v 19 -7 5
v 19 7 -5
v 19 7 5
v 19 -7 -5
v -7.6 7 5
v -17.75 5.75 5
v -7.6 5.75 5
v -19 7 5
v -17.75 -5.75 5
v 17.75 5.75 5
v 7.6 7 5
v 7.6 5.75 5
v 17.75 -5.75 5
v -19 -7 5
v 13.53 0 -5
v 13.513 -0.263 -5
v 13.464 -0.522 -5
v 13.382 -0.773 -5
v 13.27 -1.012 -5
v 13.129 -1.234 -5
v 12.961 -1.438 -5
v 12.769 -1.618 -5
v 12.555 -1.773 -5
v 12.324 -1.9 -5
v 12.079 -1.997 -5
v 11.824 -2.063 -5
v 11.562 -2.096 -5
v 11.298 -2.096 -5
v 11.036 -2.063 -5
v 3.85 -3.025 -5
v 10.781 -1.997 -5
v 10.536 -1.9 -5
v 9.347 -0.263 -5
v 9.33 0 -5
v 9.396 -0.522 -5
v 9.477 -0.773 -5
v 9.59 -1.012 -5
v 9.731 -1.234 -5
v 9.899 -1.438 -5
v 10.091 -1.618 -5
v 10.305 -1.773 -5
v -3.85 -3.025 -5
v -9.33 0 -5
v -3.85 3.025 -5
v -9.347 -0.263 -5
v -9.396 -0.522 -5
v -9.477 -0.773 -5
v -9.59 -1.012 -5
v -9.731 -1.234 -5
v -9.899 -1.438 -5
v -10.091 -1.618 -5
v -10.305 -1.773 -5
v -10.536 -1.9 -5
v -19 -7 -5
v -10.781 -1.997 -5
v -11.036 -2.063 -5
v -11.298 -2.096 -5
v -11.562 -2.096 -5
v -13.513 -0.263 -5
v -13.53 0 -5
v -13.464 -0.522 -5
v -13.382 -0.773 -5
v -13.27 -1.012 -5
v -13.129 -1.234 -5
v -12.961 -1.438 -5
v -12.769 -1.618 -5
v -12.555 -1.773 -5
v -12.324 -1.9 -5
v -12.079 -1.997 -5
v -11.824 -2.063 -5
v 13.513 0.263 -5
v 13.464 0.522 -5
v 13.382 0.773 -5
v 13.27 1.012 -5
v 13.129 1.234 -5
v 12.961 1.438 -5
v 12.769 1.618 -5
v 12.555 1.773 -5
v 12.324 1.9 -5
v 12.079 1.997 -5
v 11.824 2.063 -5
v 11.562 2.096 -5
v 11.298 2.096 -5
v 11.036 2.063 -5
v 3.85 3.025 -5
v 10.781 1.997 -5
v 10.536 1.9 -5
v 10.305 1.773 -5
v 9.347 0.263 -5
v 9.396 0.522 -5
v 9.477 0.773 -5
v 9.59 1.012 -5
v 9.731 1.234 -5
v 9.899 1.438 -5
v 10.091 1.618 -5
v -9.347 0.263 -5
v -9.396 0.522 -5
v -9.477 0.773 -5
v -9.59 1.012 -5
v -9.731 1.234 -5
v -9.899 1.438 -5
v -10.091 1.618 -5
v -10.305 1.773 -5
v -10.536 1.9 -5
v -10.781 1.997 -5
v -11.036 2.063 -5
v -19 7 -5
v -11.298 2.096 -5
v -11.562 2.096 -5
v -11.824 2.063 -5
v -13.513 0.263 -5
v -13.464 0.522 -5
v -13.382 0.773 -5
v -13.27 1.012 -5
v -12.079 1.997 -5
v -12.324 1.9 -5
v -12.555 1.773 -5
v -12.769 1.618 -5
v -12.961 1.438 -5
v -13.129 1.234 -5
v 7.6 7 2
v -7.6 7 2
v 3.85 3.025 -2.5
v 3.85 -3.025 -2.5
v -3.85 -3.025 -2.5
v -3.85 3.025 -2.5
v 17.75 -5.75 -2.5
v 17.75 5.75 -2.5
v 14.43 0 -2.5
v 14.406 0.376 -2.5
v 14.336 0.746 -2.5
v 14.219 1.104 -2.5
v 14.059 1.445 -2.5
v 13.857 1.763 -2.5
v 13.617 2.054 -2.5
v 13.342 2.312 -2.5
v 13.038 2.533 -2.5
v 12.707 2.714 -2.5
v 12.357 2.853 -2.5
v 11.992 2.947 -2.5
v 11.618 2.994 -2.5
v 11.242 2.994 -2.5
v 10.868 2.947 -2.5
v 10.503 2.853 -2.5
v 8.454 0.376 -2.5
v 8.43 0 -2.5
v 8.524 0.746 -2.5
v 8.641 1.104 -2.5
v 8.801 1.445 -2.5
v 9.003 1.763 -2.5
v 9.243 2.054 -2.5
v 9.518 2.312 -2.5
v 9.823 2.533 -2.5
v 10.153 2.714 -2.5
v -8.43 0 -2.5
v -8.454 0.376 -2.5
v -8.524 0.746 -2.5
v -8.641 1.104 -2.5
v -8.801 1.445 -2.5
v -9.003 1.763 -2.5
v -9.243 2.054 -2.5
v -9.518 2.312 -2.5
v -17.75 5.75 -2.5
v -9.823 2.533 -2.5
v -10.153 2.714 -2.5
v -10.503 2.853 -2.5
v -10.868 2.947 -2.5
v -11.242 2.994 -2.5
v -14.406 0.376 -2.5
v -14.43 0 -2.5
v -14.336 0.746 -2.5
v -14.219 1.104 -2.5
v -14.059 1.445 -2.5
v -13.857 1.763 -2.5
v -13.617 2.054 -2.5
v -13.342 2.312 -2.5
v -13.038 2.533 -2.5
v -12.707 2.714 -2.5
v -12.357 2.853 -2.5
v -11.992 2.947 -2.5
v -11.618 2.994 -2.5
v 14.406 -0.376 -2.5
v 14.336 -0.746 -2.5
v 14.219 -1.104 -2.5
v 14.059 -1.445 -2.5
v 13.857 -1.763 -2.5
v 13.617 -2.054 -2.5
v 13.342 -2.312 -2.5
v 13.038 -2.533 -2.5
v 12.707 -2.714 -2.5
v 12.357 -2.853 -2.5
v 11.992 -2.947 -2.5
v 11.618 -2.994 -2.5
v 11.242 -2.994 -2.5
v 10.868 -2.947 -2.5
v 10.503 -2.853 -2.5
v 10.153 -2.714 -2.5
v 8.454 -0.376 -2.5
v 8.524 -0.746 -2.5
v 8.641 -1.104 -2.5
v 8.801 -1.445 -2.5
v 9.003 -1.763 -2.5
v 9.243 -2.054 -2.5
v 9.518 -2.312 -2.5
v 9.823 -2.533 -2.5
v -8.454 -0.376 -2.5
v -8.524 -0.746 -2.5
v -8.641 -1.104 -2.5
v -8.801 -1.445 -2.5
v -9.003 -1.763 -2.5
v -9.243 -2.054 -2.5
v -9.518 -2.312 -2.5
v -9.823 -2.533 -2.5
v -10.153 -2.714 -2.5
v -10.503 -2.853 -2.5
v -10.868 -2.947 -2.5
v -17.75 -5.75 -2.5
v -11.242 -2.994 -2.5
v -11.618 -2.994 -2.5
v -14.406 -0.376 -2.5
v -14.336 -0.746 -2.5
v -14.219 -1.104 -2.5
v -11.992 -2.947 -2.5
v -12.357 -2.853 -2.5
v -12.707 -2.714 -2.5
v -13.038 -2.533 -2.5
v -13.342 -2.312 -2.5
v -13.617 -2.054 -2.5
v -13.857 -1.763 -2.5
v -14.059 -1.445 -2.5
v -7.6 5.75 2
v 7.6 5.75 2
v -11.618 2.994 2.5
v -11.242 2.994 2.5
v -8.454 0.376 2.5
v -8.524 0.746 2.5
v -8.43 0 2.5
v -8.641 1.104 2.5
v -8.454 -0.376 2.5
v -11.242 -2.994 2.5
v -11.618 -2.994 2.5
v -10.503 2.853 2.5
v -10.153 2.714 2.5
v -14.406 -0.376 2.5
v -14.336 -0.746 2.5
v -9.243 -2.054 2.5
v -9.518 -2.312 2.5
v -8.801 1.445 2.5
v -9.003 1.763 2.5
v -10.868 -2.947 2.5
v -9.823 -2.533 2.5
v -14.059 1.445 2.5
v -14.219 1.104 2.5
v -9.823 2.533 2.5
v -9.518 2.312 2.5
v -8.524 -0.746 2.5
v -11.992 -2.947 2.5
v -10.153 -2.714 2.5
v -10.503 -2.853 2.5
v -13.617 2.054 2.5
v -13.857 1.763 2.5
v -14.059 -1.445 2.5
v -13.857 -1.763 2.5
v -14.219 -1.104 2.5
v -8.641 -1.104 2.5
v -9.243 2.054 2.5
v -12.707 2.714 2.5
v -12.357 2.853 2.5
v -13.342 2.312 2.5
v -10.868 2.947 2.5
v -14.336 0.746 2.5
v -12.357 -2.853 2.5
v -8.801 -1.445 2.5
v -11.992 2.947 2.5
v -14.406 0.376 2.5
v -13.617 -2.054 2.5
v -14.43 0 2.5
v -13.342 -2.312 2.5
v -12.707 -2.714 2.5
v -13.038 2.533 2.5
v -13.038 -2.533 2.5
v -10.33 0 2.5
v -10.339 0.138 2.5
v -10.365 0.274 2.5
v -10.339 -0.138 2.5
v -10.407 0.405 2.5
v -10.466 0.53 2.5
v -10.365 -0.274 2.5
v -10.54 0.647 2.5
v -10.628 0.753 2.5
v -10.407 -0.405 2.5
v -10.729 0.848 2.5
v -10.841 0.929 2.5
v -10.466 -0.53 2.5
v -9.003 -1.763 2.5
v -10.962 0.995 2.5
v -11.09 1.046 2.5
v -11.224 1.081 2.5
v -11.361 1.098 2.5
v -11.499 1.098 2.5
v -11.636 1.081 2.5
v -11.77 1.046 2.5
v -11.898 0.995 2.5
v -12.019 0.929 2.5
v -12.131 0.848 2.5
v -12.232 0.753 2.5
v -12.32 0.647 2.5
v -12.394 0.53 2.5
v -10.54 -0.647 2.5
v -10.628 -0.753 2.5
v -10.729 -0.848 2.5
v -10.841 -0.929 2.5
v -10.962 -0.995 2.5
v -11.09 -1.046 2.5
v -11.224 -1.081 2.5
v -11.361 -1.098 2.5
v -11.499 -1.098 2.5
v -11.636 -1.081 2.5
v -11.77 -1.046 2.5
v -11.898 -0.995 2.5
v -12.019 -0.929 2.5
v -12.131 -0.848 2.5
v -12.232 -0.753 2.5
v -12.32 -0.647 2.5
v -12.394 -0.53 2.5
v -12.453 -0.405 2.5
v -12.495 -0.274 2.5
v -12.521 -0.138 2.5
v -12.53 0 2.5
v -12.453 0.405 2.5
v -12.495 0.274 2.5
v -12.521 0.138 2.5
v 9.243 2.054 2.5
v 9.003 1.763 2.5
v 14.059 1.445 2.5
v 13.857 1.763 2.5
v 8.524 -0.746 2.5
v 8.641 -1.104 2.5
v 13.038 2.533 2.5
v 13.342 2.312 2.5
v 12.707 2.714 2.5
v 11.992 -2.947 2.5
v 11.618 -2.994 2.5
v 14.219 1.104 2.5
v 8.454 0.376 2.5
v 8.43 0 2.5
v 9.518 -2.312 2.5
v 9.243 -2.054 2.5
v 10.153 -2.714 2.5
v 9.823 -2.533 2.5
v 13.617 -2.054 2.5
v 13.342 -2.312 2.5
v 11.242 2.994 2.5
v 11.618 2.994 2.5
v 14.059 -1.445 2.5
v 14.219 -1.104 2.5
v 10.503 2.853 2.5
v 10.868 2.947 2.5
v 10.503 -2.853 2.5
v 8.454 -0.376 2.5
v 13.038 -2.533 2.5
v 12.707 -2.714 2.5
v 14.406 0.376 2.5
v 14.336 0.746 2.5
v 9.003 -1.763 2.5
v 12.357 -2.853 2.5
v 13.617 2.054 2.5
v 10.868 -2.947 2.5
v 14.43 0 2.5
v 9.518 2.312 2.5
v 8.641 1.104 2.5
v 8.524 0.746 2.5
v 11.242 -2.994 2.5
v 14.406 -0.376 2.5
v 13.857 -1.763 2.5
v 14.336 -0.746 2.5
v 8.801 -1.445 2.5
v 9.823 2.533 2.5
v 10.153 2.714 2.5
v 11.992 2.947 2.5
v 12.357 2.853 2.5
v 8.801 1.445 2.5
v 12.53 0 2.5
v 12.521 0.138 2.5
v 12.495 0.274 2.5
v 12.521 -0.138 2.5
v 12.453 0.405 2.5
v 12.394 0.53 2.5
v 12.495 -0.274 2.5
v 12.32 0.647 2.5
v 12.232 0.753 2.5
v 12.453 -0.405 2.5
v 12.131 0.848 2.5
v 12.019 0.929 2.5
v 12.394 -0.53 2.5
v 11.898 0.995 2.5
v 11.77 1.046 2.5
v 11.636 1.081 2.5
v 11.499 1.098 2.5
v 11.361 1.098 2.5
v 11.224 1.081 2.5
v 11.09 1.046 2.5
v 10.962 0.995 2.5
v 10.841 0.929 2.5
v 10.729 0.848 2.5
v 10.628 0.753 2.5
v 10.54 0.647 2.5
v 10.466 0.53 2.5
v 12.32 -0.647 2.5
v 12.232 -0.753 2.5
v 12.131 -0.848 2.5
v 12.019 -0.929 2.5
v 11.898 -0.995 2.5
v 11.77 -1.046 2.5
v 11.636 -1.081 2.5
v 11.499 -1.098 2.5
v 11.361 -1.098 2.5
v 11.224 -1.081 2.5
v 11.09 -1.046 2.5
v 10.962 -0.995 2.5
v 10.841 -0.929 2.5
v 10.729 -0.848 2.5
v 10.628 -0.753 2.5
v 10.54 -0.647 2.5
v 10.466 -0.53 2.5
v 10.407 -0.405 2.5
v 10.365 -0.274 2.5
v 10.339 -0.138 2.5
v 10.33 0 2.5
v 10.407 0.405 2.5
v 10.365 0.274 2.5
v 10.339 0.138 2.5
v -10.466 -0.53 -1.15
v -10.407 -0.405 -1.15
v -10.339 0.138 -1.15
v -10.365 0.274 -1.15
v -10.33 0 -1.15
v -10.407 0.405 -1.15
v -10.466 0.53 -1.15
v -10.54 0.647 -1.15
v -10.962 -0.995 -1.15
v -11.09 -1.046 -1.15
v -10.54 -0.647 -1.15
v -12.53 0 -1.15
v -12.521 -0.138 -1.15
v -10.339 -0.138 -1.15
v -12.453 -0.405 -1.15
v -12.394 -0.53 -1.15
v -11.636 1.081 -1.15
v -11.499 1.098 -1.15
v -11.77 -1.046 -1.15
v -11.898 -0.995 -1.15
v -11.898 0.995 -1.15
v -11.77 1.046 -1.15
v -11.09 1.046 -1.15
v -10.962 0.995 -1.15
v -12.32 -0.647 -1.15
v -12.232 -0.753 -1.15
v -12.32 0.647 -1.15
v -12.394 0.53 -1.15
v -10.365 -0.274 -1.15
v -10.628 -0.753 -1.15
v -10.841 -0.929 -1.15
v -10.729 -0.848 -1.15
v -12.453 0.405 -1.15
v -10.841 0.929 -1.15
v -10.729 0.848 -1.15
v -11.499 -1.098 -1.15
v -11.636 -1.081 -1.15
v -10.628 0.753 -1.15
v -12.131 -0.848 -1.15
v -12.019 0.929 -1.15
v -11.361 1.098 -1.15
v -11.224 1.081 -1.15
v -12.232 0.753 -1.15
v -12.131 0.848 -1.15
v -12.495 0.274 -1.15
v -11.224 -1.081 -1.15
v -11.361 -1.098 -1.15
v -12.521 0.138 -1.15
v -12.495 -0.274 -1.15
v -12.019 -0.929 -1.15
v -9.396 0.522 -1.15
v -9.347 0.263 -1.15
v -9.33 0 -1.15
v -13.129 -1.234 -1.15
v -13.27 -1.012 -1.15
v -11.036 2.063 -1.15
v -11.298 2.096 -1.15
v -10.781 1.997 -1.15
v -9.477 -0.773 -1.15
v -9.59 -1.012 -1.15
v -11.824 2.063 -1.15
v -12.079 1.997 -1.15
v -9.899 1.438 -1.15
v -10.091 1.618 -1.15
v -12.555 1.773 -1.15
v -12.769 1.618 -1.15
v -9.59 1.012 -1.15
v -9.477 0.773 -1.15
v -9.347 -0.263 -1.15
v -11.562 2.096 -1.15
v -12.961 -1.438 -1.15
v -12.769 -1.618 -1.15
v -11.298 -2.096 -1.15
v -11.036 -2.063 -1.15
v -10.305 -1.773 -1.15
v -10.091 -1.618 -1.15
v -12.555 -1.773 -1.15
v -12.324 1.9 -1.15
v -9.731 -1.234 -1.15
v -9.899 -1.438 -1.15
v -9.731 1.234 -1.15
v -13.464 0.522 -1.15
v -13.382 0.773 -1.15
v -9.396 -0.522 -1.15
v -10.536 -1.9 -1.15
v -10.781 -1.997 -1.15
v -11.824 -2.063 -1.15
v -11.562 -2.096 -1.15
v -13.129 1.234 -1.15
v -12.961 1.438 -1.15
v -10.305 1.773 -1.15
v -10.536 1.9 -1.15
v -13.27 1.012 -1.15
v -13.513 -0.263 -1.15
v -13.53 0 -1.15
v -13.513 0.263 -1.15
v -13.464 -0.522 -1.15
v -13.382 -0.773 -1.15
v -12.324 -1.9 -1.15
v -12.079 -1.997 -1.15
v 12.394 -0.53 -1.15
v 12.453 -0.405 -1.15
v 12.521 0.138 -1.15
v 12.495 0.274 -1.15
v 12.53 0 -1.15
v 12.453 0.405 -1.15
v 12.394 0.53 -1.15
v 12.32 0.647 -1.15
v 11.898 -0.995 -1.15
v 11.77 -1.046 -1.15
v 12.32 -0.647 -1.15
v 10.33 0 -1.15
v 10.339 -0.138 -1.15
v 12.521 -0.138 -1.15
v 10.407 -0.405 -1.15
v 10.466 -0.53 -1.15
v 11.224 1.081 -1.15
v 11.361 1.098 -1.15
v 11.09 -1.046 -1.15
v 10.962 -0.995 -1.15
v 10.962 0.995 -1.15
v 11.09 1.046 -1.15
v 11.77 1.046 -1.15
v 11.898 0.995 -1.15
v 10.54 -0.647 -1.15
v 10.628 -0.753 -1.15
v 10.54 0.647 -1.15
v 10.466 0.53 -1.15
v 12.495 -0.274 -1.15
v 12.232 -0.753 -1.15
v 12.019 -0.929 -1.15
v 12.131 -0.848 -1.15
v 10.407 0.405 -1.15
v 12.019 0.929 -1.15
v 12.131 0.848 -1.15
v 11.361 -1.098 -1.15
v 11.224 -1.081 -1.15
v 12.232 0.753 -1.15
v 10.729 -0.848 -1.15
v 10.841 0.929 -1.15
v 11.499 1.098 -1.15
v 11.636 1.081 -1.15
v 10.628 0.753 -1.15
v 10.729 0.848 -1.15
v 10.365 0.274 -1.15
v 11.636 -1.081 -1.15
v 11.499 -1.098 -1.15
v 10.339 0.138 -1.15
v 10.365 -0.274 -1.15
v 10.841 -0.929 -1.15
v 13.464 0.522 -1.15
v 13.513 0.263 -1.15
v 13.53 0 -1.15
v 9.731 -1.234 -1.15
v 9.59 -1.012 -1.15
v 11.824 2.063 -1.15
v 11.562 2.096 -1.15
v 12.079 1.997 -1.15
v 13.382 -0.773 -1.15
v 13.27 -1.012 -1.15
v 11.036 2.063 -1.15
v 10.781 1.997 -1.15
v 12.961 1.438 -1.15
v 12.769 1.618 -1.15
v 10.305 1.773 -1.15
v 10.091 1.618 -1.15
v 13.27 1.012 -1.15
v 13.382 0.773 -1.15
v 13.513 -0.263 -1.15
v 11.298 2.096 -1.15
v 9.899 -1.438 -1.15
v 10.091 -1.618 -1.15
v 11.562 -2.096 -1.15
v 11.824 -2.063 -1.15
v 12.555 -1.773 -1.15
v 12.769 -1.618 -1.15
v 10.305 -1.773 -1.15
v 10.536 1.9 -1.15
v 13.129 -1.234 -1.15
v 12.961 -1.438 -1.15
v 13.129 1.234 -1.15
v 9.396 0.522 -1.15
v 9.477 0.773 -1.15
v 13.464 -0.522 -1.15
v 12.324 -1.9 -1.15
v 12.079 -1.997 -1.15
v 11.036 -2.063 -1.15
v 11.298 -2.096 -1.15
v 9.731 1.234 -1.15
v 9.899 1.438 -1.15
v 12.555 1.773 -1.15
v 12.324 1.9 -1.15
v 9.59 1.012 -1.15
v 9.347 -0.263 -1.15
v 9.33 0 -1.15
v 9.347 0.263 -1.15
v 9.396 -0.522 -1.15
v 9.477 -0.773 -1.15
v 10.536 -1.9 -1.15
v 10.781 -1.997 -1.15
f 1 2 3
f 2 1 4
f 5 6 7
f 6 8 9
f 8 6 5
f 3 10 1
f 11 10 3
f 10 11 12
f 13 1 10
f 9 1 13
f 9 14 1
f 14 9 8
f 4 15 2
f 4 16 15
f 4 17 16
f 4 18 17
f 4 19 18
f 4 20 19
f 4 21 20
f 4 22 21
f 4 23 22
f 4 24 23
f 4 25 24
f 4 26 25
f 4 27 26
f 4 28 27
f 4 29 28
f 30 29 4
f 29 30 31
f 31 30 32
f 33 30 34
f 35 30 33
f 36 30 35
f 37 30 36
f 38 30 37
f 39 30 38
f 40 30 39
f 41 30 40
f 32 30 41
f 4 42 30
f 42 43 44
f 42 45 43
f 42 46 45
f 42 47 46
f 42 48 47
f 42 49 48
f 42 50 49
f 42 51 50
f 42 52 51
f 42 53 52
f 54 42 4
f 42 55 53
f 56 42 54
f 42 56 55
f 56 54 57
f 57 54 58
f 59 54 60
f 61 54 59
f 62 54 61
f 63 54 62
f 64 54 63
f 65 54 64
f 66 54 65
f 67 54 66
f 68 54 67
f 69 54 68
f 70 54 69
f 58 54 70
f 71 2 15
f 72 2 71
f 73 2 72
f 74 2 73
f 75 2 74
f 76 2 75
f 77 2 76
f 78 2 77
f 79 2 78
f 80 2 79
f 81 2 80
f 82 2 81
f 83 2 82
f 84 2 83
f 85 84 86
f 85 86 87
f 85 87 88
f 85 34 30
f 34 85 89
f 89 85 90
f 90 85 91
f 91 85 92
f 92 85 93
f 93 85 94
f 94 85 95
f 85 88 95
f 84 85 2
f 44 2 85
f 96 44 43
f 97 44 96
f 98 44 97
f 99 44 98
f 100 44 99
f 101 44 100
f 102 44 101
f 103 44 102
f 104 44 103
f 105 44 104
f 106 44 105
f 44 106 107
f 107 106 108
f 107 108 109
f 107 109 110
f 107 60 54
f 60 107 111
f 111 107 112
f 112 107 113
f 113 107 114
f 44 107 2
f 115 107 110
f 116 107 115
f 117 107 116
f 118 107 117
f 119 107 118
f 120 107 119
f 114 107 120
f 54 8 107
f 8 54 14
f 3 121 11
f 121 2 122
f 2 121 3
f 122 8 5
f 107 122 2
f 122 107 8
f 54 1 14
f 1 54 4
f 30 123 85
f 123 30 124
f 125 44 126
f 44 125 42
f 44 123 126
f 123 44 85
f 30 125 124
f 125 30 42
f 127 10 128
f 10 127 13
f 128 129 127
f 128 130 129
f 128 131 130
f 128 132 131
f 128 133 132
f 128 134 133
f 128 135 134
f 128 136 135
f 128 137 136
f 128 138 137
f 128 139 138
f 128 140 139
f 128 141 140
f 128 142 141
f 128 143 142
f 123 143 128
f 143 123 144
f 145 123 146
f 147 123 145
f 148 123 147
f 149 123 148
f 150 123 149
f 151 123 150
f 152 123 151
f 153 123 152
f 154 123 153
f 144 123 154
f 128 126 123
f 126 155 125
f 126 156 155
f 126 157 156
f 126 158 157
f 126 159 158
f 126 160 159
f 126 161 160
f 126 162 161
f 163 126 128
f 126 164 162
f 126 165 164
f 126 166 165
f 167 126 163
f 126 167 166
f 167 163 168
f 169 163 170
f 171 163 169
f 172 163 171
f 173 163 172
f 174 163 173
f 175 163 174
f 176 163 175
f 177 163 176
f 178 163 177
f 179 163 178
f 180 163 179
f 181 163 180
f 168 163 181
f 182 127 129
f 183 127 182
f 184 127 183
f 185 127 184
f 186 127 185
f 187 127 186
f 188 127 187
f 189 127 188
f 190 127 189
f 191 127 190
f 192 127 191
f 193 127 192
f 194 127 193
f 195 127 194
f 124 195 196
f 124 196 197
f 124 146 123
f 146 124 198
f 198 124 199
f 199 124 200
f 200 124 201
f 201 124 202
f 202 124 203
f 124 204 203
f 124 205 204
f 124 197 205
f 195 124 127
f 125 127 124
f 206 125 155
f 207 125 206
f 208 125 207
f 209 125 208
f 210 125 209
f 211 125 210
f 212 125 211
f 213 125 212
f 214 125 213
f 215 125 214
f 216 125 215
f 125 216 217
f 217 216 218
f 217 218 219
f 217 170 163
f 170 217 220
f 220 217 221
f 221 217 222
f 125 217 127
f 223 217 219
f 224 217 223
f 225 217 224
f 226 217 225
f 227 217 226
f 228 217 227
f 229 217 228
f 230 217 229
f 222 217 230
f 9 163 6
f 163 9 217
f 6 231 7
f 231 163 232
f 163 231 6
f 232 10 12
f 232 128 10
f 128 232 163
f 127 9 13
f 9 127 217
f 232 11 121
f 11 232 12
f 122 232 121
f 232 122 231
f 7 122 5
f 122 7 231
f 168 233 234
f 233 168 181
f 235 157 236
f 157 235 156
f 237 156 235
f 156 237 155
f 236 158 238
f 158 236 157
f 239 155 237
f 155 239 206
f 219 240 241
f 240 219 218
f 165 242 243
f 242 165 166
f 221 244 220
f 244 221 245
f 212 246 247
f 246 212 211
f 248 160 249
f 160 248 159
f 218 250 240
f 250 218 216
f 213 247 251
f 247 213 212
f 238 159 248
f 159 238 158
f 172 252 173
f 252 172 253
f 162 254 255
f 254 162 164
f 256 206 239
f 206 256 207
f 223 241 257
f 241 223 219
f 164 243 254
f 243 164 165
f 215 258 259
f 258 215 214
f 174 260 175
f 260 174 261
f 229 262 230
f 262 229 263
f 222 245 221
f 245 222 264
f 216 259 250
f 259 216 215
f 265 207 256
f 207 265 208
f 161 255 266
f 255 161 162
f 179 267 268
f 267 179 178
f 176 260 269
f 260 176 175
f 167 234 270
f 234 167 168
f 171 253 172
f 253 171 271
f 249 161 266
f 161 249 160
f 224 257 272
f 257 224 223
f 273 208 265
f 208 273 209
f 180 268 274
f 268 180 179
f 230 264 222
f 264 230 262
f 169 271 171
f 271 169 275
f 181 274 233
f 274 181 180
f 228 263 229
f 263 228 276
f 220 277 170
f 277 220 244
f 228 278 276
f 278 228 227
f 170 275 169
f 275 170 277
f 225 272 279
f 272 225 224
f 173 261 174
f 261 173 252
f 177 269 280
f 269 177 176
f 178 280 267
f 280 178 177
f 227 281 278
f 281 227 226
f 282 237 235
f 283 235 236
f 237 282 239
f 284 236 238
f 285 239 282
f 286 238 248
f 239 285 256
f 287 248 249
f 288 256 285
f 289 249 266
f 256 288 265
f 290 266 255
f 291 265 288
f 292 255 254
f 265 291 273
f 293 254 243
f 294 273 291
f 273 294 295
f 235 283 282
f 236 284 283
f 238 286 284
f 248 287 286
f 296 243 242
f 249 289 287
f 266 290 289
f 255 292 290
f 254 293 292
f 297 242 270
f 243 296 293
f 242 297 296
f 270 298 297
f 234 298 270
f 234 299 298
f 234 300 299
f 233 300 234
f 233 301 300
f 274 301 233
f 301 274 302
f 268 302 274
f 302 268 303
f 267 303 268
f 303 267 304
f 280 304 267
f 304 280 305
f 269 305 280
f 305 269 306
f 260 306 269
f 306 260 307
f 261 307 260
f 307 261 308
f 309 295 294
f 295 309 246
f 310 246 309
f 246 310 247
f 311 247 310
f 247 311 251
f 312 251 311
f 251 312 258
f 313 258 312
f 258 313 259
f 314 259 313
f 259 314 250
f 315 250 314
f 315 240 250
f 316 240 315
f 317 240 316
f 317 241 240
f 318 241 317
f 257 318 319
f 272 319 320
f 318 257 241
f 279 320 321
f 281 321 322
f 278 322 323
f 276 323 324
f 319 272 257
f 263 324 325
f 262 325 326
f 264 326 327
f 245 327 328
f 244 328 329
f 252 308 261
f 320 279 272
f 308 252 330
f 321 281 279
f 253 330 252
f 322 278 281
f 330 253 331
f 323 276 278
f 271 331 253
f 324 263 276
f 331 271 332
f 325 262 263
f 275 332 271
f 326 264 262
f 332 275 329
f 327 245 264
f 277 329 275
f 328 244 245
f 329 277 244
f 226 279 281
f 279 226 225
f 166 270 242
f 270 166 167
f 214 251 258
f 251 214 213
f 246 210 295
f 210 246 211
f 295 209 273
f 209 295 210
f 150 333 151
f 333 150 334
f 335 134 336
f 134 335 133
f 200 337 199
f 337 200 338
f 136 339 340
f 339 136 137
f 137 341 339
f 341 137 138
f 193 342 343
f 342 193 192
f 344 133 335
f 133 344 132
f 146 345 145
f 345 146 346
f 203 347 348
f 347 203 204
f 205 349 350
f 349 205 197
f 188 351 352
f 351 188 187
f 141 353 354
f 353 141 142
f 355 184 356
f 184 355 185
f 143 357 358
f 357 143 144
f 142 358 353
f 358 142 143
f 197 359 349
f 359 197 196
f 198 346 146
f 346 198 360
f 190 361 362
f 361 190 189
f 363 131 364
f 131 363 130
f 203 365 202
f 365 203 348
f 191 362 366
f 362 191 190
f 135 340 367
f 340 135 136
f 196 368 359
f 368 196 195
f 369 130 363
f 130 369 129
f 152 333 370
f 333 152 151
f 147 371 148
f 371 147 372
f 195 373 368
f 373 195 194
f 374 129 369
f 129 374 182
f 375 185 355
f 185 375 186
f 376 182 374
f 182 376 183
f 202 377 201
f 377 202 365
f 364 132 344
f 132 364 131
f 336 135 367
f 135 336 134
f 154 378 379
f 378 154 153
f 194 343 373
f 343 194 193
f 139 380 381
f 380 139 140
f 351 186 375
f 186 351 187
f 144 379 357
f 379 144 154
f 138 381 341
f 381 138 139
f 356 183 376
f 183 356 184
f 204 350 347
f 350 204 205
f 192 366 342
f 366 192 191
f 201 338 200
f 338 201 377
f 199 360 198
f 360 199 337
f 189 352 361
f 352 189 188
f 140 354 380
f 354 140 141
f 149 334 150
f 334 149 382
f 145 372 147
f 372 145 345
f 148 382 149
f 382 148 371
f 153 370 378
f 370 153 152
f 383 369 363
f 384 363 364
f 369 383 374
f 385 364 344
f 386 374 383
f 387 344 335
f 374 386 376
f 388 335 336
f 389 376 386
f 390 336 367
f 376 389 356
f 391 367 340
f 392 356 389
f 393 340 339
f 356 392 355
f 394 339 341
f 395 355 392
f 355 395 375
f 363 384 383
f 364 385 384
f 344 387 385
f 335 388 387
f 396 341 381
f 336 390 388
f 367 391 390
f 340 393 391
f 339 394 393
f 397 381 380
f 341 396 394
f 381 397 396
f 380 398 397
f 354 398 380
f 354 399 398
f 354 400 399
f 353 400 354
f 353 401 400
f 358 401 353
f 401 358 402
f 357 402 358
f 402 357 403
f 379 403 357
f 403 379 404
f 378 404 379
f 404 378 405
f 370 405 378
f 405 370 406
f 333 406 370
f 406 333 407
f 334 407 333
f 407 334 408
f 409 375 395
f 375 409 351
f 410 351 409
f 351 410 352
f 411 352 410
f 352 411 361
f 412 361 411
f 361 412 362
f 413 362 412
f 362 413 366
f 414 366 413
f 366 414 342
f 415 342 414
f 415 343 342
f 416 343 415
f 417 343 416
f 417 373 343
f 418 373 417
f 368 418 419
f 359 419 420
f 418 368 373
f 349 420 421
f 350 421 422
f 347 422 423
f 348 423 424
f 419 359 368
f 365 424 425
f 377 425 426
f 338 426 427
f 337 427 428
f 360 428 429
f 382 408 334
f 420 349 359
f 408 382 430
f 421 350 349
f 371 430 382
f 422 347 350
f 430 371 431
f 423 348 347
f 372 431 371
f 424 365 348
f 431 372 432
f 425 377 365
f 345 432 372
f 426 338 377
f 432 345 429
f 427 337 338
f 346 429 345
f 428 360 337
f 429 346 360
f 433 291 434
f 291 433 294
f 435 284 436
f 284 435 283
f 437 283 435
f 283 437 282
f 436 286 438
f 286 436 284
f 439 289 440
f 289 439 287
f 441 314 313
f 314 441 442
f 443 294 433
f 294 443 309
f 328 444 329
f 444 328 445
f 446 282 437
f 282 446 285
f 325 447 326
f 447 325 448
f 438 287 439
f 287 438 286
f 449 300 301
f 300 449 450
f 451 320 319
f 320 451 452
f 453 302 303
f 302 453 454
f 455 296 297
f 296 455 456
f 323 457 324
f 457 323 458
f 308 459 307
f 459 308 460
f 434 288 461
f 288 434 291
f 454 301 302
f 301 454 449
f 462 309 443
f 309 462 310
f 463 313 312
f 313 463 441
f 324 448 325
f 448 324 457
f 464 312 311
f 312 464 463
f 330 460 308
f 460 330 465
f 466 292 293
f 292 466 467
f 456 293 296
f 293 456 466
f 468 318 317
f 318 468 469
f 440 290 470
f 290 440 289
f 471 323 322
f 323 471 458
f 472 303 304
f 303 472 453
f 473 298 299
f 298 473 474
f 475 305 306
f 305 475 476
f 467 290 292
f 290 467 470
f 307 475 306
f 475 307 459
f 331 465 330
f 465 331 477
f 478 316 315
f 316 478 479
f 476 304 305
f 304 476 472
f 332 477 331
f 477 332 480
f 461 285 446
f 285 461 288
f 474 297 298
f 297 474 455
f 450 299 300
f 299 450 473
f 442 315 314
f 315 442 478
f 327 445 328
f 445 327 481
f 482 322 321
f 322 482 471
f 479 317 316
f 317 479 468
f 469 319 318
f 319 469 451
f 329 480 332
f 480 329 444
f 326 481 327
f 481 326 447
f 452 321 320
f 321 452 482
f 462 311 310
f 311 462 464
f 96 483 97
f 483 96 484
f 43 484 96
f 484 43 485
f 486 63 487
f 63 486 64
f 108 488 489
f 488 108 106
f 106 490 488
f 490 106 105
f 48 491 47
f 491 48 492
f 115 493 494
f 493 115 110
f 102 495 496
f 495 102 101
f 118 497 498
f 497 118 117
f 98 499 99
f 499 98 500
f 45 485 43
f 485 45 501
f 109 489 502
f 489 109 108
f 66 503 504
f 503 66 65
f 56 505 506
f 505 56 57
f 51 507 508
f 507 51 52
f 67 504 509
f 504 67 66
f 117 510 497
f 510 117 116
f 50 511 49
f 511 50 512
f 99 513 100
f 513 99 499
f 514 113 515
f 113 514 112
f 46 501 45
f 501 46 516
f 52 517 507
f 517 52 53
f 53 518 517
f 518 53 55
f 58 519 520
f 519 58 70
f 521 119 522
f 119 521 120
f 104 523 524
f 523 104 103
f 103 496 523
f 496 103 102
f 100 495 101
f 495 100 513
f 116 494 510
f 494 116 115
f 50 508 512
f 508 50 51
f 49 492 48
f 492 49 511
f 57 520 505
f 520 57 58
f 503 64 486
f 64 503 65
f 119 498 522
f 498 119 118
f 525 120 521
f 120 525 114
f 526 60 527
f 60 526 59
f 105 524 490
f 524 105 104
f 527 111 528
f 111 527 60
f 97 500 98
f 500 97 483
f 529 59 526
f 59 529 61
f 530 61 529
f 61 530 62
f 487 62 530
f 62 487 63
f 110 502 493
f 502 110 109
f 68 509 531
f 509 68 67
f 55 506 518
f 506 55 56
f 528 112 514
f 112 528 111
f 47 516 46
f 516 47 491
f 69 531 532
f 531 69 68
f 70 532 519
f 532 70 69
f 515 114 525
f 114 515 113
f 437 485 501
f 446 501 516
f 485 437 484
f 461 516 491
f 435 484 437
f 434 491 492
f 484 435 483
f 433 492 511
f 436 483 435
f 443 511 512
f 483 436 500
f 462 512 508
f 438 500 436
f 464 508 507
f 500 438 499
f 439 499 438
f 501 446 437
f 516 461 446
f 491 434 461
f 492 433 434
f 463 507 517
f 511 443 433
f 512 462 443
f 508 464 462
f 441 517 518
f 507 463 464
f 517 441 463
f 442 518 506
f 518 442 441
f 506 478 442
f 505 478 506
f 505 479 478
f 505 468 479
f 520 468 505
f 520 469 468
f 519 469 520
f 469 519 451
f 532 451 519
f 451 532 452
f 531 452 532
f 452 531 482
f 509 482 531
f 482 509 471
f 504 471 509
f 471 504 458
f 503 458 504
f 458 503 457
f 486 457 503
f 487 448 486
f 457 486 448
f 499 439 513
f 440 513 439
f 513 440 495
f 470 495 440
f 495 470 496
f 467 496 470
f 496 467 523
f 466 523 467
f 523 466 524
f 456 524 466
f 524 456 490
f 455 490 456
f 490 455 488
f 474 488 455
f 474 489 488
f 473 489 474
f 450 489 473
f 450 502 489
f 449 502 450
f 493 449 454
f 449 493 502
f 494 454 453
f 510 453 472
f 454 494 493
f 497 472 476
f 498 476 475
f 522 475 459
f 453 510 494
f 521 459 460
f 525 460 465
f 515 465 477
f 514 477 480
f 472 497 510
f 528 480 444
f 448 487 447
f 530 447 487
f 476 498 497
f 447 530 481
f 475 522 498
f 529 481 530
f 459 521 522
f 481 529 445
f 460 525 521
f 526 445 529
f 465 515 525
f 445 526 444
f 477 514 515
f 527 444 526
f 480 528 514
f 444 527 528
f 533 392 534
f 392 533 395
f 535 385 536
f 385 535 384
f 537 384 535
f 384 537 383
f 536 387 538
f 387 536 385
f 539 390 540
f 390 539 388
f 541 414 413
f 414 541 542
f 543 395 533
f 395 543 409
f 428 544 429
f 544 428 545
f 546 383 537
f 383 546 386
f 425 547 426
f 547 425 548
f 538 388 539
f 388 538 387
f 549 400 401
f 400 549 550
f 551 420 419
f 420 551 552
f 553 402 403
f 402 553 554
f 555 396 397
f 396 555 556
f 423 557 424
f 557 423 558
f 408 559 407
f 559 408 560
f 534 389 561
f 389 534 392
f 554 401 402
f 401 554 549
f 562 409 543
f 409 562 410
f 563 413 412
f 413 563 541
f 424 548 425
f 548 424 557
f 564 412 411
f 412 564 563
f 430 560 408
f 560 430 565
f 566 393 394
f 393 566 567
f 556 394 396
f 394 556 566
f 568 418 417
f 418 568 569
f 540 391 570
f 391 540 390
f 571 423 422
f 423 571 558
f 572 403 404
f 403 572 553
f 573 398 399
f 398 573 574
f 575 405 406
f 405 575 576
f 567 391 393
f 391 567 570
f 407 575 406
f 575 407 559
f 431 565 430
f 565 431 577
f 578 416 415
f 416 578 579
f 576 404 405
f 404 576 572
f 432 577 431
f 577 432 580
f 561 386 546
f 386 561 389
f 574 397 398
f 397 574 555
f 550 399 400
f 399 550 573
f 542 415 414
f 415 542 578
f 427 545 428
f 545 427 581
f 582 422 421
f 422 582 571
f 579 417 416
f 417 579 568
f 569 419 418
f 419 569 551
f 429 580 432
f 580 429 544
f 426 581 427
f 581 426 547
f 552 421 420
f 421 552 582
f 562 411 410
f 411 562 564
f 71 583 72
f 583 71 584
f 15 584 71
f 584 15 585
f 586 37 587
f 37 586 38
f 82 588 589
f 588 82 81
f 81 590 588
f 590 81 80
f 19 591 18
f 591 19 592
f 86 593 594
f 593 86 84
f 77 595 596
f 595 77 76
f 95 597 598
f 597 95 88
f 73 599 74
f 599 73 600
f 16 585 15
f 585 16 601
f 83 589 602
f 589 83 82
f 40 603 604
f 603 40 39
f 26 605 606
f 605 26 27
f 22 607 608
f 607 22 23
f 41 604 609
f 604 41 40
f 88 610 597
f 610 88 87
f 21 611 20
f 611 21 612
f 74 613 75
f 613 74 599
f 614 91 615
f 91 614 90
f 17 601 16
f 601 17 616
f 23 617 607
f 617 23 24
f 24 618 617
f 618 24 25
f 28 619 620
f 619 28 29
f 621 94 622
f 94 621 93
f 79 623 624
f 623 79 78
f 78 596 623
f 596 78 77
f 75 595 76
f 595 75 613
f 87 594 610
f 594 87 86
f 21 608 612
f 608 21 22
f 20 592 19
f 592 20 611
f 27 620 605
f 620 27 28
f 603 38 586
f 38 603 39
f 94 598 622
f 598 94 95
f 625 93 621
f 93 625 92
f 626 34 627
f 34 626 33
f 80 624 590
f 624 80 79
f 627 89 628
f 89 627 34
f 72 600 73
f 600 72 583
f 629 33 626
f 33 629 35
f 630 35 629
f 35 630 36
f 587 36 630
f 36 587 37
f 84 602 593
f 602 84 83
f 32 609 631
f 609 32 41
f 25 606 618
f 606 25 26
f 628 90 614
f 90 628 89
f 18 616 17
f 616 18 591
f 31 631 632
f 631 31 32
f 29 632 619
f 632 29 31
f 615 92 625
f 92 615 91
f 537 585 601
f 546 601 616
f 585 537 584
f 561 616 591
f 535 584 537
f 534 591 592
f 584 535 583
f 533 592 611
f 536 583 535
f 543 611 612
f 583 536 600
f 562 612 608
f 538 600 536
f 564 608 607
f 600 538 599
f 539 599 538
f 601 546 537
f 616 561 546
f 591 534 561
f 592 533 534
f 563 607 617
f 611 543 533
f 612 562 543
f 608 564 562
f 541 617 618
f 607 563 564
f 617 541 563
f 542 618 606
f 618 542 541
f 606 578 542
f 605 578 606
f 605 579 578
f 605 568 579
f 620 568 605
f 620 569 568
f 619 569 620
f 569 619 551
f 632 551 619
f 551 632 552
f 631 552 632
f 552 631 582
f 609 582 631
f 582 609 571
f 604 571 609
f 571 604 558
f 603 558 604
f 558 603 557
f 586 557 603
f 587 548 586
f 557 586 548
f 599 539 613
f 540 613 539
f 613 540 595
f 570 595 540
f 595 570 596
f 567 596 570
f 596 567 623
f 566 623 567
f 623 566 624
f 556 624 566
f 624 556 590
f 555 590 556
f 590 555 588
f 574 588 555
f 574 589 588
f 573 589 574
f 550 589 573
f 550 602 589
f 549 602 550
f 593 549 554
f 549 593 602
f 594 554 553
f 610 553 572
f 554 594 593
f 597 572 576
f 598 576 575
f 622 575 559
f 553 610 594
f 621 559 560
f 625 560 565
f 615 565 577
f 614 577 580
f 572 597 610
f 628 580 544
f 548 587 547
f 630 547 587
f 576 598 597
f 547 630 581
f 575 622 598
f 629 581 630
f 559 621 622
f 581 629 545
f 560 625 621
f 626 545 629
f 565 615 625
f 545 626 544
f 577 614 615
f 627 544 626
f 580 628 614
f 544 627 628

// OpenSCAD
// file: ../lib/nuts_and_screws.scad
//
// This file is part of the hexapod-robi distribution (https://github.com/schwicke/hexapod-robi).
// Copyright (c) 2021 Ulrich Schwickerath
//
// This program is free software: you can redistribute it and/or modify
// it under the terms of the GNU General Public License as published by
// the Free Software Foundation, version 3.
//
// This program is distributed in the hope that it will be useful, but
// WITHOUT ANY WARRANTY; without even the implied warranty of
// MERCHANTABILITY or FITNESS FOR A PARTICULAR PURPOSE. See the GNU
// General Public License for more details.
//
// You should have received a copy of the GNU General Public License
// along with this program. If not, see <http://www.gnu.org/licenses/>.
//
// This is a little plastic bit which is intended to get the holes for the connectors
// at the right position. It's not part of the robot itself, but useful for building it.
//
// m3s nuts dimensions
m3s_screwdim = 3; // m3 screws
m3s_delta = 0.4;
m3s_nut_width = 5.4+m3s_delta;
m3s_nut_hight = 2.4+m3s_delta;

module screwhole_mX_basic(d, height, fact){
     headlength = 0.6*d/2+0.1;
     translate([0, 0, headlength/2]){
          translate([0, 0, height/2])cylinder(h=height, r=d/2+0.1, center=true, $fn=50);
          cylinder(h=10*fact*headlength, r=d+0.1, center=true, $fn=50);
     }
}

module screwhole_mX(d, height, fact){
     headlength = 0.6*d/2+0.1;
     translate([0, 2, 0]){
          rotate([90, 0, 0]){
               translate([0, 0, headlength/2]){
                    translate([0, 0, height/2])cylinder(h=height, r=d/2+0.1, center=true, $fn=50);
                    cylinder(h=10*fact*headlength, r=d+0.1, center=true, $fn=50);
               }
          }
     }
}

module nuthole_mX(d){
     s = (d==2) ? 4: (d==2.5)? 5: (d==3) ? 5.5: 0.0;
     if (s==0){
          echo ("Nut size not supported");
     }
     e = s/sin(60.0);
     height = 40;
     headlength = 0.6*d/2+0.1;
     translate([0, 0, -5*headlength]){
          translate([0, 0, height/2])cylinder(h=height, r=d/2+0.1, center=true, $fn=50);
          cylinder(h=10*headlength, d=e+0.1, center=true, $fn=6);
     }
}

module my_screwhole_mX(d){
     translate([0, 0, thickness])rotate([180, 0, 0])screwhole_mX_basic(d, 40, 1);
}
// file: ../lib/globals.scad
//
// This file is part of the hexapod-robi distribution (https://github.com/schwicke/hexapod-robi).
// Copyright (c) 2021 Ulrich Schwickerath
//
// This program is free software: you can redistribute it and/or modify
// it under the terms of the GNU General Public License as published by
// the Free Software Foundation, version 3.
//
// This program is distributed in the hope that it will be useful, but
// WITHOUT ANY WARRANTY; without even the implied warranty of
// MERCHANTABILITY or FITNESS FOR A PARTICULAR PURPOSE. See the GNU
// General Public License for more details.
//
// You should have received a copy of the GNU General Public License
// along with this program. If not, see <http://www.gnu.org/licenses/>.
//
// This is a little plastic bit which is intended to get the holes for the connectors
// at the right position. It's not part of the robot itself, but useful for building it.
//
//
// all distances are in mm
//

// Define some globals used at various places
raster=2.54;

// motor height
space = 42.0;

// wall thickness
thickness = 4;

// battery box
batt_thickness = 3;
batt_x = 50;
batt_y = 160;
batt_z = 25;

// binder distance
binder_dist = 3.5;

// mount position base
base_mount_pos_x = batt_x/2+2*batt_thickness+1.5;

// dimensions for hubs for motor cabling
hub_hole_diameter = 2;
hub_spacer_height = 2;
hub_x = 4.9;
hub_y = 9.9;

module anchorbox(size){
     cube([40, 30, size],center=true);
}
// main file
//
// This file is part of the hexapod-robi distribution (https://github.com/schwicke/hexapod-robi).
// Copyright (c) 2021 Ulrich Schwickerath
//
// This program is free software: you can redistribute it and/or modify
// it under the terms of the GNU General Public License as published by
// the Free Software Foundation, version 3.
//
// This program is distributed in the hope that it will be useful, but
// WITHOUT ANY WARRANTY; without even the implied warranty of
// MERCHANTABILITY or FITNESS FOR A PARTICULAR PURPOSE. See the GNU
// General Public License for more details.
//
// You should have received a copy of the GNU General Public License
// along with this program. If not, see <http://www.gnu.org/licenses/>.
//
// This is a little plastic bit which is intended to get the holes for the connectors
// at the right position. It's not part of the robot itself, but useful for building it.
//
include <../lib/globals.scad>;
include <../lib/nuts_and_screws.scad>;
//
hub_hole_diameter = 2;
hub_spacer_height = 2;

hub_y = 5.75+0.2;
hub_x = 7.4+0.2;
dist = 4.5*raster;

module connector_hub(){
  translate([-dist, 0, -5])screwhole_mX_basic(hub_hole_diameter, 10.0, 1.0);
  translate([+dist, 0, -5])screwhole_mX_basic(hub_hole_diameter, 10.0, 1.0);
}

module box(dist){
     length=38;
     width=14;
     height=10;
     thickness=2.5;
     difference(){
          cube([length, width, height], center=true);
          // connector hole
          cube([hub_x+0.1, hub_y+0.1, 20], center=true);
          //carve out to create a box
          translate([0, 0, 2.5])cube([length-thickness, width-thickness, height], center=true);
          //carve out to connect the sensor
          translate([0, hub_y, 4])cube([2*hub_x, 2*hub_y, 4], center=true);
     }
     translate([-dist, 0, 0])cylinder(h=5, r=3, center=true, $fn=50);
     translate([+dist, 0, 0])cylinder(h=5, r=3, center=true, $fn=50);
}

difference(){
     box(dist);
     connector_hub();
}
